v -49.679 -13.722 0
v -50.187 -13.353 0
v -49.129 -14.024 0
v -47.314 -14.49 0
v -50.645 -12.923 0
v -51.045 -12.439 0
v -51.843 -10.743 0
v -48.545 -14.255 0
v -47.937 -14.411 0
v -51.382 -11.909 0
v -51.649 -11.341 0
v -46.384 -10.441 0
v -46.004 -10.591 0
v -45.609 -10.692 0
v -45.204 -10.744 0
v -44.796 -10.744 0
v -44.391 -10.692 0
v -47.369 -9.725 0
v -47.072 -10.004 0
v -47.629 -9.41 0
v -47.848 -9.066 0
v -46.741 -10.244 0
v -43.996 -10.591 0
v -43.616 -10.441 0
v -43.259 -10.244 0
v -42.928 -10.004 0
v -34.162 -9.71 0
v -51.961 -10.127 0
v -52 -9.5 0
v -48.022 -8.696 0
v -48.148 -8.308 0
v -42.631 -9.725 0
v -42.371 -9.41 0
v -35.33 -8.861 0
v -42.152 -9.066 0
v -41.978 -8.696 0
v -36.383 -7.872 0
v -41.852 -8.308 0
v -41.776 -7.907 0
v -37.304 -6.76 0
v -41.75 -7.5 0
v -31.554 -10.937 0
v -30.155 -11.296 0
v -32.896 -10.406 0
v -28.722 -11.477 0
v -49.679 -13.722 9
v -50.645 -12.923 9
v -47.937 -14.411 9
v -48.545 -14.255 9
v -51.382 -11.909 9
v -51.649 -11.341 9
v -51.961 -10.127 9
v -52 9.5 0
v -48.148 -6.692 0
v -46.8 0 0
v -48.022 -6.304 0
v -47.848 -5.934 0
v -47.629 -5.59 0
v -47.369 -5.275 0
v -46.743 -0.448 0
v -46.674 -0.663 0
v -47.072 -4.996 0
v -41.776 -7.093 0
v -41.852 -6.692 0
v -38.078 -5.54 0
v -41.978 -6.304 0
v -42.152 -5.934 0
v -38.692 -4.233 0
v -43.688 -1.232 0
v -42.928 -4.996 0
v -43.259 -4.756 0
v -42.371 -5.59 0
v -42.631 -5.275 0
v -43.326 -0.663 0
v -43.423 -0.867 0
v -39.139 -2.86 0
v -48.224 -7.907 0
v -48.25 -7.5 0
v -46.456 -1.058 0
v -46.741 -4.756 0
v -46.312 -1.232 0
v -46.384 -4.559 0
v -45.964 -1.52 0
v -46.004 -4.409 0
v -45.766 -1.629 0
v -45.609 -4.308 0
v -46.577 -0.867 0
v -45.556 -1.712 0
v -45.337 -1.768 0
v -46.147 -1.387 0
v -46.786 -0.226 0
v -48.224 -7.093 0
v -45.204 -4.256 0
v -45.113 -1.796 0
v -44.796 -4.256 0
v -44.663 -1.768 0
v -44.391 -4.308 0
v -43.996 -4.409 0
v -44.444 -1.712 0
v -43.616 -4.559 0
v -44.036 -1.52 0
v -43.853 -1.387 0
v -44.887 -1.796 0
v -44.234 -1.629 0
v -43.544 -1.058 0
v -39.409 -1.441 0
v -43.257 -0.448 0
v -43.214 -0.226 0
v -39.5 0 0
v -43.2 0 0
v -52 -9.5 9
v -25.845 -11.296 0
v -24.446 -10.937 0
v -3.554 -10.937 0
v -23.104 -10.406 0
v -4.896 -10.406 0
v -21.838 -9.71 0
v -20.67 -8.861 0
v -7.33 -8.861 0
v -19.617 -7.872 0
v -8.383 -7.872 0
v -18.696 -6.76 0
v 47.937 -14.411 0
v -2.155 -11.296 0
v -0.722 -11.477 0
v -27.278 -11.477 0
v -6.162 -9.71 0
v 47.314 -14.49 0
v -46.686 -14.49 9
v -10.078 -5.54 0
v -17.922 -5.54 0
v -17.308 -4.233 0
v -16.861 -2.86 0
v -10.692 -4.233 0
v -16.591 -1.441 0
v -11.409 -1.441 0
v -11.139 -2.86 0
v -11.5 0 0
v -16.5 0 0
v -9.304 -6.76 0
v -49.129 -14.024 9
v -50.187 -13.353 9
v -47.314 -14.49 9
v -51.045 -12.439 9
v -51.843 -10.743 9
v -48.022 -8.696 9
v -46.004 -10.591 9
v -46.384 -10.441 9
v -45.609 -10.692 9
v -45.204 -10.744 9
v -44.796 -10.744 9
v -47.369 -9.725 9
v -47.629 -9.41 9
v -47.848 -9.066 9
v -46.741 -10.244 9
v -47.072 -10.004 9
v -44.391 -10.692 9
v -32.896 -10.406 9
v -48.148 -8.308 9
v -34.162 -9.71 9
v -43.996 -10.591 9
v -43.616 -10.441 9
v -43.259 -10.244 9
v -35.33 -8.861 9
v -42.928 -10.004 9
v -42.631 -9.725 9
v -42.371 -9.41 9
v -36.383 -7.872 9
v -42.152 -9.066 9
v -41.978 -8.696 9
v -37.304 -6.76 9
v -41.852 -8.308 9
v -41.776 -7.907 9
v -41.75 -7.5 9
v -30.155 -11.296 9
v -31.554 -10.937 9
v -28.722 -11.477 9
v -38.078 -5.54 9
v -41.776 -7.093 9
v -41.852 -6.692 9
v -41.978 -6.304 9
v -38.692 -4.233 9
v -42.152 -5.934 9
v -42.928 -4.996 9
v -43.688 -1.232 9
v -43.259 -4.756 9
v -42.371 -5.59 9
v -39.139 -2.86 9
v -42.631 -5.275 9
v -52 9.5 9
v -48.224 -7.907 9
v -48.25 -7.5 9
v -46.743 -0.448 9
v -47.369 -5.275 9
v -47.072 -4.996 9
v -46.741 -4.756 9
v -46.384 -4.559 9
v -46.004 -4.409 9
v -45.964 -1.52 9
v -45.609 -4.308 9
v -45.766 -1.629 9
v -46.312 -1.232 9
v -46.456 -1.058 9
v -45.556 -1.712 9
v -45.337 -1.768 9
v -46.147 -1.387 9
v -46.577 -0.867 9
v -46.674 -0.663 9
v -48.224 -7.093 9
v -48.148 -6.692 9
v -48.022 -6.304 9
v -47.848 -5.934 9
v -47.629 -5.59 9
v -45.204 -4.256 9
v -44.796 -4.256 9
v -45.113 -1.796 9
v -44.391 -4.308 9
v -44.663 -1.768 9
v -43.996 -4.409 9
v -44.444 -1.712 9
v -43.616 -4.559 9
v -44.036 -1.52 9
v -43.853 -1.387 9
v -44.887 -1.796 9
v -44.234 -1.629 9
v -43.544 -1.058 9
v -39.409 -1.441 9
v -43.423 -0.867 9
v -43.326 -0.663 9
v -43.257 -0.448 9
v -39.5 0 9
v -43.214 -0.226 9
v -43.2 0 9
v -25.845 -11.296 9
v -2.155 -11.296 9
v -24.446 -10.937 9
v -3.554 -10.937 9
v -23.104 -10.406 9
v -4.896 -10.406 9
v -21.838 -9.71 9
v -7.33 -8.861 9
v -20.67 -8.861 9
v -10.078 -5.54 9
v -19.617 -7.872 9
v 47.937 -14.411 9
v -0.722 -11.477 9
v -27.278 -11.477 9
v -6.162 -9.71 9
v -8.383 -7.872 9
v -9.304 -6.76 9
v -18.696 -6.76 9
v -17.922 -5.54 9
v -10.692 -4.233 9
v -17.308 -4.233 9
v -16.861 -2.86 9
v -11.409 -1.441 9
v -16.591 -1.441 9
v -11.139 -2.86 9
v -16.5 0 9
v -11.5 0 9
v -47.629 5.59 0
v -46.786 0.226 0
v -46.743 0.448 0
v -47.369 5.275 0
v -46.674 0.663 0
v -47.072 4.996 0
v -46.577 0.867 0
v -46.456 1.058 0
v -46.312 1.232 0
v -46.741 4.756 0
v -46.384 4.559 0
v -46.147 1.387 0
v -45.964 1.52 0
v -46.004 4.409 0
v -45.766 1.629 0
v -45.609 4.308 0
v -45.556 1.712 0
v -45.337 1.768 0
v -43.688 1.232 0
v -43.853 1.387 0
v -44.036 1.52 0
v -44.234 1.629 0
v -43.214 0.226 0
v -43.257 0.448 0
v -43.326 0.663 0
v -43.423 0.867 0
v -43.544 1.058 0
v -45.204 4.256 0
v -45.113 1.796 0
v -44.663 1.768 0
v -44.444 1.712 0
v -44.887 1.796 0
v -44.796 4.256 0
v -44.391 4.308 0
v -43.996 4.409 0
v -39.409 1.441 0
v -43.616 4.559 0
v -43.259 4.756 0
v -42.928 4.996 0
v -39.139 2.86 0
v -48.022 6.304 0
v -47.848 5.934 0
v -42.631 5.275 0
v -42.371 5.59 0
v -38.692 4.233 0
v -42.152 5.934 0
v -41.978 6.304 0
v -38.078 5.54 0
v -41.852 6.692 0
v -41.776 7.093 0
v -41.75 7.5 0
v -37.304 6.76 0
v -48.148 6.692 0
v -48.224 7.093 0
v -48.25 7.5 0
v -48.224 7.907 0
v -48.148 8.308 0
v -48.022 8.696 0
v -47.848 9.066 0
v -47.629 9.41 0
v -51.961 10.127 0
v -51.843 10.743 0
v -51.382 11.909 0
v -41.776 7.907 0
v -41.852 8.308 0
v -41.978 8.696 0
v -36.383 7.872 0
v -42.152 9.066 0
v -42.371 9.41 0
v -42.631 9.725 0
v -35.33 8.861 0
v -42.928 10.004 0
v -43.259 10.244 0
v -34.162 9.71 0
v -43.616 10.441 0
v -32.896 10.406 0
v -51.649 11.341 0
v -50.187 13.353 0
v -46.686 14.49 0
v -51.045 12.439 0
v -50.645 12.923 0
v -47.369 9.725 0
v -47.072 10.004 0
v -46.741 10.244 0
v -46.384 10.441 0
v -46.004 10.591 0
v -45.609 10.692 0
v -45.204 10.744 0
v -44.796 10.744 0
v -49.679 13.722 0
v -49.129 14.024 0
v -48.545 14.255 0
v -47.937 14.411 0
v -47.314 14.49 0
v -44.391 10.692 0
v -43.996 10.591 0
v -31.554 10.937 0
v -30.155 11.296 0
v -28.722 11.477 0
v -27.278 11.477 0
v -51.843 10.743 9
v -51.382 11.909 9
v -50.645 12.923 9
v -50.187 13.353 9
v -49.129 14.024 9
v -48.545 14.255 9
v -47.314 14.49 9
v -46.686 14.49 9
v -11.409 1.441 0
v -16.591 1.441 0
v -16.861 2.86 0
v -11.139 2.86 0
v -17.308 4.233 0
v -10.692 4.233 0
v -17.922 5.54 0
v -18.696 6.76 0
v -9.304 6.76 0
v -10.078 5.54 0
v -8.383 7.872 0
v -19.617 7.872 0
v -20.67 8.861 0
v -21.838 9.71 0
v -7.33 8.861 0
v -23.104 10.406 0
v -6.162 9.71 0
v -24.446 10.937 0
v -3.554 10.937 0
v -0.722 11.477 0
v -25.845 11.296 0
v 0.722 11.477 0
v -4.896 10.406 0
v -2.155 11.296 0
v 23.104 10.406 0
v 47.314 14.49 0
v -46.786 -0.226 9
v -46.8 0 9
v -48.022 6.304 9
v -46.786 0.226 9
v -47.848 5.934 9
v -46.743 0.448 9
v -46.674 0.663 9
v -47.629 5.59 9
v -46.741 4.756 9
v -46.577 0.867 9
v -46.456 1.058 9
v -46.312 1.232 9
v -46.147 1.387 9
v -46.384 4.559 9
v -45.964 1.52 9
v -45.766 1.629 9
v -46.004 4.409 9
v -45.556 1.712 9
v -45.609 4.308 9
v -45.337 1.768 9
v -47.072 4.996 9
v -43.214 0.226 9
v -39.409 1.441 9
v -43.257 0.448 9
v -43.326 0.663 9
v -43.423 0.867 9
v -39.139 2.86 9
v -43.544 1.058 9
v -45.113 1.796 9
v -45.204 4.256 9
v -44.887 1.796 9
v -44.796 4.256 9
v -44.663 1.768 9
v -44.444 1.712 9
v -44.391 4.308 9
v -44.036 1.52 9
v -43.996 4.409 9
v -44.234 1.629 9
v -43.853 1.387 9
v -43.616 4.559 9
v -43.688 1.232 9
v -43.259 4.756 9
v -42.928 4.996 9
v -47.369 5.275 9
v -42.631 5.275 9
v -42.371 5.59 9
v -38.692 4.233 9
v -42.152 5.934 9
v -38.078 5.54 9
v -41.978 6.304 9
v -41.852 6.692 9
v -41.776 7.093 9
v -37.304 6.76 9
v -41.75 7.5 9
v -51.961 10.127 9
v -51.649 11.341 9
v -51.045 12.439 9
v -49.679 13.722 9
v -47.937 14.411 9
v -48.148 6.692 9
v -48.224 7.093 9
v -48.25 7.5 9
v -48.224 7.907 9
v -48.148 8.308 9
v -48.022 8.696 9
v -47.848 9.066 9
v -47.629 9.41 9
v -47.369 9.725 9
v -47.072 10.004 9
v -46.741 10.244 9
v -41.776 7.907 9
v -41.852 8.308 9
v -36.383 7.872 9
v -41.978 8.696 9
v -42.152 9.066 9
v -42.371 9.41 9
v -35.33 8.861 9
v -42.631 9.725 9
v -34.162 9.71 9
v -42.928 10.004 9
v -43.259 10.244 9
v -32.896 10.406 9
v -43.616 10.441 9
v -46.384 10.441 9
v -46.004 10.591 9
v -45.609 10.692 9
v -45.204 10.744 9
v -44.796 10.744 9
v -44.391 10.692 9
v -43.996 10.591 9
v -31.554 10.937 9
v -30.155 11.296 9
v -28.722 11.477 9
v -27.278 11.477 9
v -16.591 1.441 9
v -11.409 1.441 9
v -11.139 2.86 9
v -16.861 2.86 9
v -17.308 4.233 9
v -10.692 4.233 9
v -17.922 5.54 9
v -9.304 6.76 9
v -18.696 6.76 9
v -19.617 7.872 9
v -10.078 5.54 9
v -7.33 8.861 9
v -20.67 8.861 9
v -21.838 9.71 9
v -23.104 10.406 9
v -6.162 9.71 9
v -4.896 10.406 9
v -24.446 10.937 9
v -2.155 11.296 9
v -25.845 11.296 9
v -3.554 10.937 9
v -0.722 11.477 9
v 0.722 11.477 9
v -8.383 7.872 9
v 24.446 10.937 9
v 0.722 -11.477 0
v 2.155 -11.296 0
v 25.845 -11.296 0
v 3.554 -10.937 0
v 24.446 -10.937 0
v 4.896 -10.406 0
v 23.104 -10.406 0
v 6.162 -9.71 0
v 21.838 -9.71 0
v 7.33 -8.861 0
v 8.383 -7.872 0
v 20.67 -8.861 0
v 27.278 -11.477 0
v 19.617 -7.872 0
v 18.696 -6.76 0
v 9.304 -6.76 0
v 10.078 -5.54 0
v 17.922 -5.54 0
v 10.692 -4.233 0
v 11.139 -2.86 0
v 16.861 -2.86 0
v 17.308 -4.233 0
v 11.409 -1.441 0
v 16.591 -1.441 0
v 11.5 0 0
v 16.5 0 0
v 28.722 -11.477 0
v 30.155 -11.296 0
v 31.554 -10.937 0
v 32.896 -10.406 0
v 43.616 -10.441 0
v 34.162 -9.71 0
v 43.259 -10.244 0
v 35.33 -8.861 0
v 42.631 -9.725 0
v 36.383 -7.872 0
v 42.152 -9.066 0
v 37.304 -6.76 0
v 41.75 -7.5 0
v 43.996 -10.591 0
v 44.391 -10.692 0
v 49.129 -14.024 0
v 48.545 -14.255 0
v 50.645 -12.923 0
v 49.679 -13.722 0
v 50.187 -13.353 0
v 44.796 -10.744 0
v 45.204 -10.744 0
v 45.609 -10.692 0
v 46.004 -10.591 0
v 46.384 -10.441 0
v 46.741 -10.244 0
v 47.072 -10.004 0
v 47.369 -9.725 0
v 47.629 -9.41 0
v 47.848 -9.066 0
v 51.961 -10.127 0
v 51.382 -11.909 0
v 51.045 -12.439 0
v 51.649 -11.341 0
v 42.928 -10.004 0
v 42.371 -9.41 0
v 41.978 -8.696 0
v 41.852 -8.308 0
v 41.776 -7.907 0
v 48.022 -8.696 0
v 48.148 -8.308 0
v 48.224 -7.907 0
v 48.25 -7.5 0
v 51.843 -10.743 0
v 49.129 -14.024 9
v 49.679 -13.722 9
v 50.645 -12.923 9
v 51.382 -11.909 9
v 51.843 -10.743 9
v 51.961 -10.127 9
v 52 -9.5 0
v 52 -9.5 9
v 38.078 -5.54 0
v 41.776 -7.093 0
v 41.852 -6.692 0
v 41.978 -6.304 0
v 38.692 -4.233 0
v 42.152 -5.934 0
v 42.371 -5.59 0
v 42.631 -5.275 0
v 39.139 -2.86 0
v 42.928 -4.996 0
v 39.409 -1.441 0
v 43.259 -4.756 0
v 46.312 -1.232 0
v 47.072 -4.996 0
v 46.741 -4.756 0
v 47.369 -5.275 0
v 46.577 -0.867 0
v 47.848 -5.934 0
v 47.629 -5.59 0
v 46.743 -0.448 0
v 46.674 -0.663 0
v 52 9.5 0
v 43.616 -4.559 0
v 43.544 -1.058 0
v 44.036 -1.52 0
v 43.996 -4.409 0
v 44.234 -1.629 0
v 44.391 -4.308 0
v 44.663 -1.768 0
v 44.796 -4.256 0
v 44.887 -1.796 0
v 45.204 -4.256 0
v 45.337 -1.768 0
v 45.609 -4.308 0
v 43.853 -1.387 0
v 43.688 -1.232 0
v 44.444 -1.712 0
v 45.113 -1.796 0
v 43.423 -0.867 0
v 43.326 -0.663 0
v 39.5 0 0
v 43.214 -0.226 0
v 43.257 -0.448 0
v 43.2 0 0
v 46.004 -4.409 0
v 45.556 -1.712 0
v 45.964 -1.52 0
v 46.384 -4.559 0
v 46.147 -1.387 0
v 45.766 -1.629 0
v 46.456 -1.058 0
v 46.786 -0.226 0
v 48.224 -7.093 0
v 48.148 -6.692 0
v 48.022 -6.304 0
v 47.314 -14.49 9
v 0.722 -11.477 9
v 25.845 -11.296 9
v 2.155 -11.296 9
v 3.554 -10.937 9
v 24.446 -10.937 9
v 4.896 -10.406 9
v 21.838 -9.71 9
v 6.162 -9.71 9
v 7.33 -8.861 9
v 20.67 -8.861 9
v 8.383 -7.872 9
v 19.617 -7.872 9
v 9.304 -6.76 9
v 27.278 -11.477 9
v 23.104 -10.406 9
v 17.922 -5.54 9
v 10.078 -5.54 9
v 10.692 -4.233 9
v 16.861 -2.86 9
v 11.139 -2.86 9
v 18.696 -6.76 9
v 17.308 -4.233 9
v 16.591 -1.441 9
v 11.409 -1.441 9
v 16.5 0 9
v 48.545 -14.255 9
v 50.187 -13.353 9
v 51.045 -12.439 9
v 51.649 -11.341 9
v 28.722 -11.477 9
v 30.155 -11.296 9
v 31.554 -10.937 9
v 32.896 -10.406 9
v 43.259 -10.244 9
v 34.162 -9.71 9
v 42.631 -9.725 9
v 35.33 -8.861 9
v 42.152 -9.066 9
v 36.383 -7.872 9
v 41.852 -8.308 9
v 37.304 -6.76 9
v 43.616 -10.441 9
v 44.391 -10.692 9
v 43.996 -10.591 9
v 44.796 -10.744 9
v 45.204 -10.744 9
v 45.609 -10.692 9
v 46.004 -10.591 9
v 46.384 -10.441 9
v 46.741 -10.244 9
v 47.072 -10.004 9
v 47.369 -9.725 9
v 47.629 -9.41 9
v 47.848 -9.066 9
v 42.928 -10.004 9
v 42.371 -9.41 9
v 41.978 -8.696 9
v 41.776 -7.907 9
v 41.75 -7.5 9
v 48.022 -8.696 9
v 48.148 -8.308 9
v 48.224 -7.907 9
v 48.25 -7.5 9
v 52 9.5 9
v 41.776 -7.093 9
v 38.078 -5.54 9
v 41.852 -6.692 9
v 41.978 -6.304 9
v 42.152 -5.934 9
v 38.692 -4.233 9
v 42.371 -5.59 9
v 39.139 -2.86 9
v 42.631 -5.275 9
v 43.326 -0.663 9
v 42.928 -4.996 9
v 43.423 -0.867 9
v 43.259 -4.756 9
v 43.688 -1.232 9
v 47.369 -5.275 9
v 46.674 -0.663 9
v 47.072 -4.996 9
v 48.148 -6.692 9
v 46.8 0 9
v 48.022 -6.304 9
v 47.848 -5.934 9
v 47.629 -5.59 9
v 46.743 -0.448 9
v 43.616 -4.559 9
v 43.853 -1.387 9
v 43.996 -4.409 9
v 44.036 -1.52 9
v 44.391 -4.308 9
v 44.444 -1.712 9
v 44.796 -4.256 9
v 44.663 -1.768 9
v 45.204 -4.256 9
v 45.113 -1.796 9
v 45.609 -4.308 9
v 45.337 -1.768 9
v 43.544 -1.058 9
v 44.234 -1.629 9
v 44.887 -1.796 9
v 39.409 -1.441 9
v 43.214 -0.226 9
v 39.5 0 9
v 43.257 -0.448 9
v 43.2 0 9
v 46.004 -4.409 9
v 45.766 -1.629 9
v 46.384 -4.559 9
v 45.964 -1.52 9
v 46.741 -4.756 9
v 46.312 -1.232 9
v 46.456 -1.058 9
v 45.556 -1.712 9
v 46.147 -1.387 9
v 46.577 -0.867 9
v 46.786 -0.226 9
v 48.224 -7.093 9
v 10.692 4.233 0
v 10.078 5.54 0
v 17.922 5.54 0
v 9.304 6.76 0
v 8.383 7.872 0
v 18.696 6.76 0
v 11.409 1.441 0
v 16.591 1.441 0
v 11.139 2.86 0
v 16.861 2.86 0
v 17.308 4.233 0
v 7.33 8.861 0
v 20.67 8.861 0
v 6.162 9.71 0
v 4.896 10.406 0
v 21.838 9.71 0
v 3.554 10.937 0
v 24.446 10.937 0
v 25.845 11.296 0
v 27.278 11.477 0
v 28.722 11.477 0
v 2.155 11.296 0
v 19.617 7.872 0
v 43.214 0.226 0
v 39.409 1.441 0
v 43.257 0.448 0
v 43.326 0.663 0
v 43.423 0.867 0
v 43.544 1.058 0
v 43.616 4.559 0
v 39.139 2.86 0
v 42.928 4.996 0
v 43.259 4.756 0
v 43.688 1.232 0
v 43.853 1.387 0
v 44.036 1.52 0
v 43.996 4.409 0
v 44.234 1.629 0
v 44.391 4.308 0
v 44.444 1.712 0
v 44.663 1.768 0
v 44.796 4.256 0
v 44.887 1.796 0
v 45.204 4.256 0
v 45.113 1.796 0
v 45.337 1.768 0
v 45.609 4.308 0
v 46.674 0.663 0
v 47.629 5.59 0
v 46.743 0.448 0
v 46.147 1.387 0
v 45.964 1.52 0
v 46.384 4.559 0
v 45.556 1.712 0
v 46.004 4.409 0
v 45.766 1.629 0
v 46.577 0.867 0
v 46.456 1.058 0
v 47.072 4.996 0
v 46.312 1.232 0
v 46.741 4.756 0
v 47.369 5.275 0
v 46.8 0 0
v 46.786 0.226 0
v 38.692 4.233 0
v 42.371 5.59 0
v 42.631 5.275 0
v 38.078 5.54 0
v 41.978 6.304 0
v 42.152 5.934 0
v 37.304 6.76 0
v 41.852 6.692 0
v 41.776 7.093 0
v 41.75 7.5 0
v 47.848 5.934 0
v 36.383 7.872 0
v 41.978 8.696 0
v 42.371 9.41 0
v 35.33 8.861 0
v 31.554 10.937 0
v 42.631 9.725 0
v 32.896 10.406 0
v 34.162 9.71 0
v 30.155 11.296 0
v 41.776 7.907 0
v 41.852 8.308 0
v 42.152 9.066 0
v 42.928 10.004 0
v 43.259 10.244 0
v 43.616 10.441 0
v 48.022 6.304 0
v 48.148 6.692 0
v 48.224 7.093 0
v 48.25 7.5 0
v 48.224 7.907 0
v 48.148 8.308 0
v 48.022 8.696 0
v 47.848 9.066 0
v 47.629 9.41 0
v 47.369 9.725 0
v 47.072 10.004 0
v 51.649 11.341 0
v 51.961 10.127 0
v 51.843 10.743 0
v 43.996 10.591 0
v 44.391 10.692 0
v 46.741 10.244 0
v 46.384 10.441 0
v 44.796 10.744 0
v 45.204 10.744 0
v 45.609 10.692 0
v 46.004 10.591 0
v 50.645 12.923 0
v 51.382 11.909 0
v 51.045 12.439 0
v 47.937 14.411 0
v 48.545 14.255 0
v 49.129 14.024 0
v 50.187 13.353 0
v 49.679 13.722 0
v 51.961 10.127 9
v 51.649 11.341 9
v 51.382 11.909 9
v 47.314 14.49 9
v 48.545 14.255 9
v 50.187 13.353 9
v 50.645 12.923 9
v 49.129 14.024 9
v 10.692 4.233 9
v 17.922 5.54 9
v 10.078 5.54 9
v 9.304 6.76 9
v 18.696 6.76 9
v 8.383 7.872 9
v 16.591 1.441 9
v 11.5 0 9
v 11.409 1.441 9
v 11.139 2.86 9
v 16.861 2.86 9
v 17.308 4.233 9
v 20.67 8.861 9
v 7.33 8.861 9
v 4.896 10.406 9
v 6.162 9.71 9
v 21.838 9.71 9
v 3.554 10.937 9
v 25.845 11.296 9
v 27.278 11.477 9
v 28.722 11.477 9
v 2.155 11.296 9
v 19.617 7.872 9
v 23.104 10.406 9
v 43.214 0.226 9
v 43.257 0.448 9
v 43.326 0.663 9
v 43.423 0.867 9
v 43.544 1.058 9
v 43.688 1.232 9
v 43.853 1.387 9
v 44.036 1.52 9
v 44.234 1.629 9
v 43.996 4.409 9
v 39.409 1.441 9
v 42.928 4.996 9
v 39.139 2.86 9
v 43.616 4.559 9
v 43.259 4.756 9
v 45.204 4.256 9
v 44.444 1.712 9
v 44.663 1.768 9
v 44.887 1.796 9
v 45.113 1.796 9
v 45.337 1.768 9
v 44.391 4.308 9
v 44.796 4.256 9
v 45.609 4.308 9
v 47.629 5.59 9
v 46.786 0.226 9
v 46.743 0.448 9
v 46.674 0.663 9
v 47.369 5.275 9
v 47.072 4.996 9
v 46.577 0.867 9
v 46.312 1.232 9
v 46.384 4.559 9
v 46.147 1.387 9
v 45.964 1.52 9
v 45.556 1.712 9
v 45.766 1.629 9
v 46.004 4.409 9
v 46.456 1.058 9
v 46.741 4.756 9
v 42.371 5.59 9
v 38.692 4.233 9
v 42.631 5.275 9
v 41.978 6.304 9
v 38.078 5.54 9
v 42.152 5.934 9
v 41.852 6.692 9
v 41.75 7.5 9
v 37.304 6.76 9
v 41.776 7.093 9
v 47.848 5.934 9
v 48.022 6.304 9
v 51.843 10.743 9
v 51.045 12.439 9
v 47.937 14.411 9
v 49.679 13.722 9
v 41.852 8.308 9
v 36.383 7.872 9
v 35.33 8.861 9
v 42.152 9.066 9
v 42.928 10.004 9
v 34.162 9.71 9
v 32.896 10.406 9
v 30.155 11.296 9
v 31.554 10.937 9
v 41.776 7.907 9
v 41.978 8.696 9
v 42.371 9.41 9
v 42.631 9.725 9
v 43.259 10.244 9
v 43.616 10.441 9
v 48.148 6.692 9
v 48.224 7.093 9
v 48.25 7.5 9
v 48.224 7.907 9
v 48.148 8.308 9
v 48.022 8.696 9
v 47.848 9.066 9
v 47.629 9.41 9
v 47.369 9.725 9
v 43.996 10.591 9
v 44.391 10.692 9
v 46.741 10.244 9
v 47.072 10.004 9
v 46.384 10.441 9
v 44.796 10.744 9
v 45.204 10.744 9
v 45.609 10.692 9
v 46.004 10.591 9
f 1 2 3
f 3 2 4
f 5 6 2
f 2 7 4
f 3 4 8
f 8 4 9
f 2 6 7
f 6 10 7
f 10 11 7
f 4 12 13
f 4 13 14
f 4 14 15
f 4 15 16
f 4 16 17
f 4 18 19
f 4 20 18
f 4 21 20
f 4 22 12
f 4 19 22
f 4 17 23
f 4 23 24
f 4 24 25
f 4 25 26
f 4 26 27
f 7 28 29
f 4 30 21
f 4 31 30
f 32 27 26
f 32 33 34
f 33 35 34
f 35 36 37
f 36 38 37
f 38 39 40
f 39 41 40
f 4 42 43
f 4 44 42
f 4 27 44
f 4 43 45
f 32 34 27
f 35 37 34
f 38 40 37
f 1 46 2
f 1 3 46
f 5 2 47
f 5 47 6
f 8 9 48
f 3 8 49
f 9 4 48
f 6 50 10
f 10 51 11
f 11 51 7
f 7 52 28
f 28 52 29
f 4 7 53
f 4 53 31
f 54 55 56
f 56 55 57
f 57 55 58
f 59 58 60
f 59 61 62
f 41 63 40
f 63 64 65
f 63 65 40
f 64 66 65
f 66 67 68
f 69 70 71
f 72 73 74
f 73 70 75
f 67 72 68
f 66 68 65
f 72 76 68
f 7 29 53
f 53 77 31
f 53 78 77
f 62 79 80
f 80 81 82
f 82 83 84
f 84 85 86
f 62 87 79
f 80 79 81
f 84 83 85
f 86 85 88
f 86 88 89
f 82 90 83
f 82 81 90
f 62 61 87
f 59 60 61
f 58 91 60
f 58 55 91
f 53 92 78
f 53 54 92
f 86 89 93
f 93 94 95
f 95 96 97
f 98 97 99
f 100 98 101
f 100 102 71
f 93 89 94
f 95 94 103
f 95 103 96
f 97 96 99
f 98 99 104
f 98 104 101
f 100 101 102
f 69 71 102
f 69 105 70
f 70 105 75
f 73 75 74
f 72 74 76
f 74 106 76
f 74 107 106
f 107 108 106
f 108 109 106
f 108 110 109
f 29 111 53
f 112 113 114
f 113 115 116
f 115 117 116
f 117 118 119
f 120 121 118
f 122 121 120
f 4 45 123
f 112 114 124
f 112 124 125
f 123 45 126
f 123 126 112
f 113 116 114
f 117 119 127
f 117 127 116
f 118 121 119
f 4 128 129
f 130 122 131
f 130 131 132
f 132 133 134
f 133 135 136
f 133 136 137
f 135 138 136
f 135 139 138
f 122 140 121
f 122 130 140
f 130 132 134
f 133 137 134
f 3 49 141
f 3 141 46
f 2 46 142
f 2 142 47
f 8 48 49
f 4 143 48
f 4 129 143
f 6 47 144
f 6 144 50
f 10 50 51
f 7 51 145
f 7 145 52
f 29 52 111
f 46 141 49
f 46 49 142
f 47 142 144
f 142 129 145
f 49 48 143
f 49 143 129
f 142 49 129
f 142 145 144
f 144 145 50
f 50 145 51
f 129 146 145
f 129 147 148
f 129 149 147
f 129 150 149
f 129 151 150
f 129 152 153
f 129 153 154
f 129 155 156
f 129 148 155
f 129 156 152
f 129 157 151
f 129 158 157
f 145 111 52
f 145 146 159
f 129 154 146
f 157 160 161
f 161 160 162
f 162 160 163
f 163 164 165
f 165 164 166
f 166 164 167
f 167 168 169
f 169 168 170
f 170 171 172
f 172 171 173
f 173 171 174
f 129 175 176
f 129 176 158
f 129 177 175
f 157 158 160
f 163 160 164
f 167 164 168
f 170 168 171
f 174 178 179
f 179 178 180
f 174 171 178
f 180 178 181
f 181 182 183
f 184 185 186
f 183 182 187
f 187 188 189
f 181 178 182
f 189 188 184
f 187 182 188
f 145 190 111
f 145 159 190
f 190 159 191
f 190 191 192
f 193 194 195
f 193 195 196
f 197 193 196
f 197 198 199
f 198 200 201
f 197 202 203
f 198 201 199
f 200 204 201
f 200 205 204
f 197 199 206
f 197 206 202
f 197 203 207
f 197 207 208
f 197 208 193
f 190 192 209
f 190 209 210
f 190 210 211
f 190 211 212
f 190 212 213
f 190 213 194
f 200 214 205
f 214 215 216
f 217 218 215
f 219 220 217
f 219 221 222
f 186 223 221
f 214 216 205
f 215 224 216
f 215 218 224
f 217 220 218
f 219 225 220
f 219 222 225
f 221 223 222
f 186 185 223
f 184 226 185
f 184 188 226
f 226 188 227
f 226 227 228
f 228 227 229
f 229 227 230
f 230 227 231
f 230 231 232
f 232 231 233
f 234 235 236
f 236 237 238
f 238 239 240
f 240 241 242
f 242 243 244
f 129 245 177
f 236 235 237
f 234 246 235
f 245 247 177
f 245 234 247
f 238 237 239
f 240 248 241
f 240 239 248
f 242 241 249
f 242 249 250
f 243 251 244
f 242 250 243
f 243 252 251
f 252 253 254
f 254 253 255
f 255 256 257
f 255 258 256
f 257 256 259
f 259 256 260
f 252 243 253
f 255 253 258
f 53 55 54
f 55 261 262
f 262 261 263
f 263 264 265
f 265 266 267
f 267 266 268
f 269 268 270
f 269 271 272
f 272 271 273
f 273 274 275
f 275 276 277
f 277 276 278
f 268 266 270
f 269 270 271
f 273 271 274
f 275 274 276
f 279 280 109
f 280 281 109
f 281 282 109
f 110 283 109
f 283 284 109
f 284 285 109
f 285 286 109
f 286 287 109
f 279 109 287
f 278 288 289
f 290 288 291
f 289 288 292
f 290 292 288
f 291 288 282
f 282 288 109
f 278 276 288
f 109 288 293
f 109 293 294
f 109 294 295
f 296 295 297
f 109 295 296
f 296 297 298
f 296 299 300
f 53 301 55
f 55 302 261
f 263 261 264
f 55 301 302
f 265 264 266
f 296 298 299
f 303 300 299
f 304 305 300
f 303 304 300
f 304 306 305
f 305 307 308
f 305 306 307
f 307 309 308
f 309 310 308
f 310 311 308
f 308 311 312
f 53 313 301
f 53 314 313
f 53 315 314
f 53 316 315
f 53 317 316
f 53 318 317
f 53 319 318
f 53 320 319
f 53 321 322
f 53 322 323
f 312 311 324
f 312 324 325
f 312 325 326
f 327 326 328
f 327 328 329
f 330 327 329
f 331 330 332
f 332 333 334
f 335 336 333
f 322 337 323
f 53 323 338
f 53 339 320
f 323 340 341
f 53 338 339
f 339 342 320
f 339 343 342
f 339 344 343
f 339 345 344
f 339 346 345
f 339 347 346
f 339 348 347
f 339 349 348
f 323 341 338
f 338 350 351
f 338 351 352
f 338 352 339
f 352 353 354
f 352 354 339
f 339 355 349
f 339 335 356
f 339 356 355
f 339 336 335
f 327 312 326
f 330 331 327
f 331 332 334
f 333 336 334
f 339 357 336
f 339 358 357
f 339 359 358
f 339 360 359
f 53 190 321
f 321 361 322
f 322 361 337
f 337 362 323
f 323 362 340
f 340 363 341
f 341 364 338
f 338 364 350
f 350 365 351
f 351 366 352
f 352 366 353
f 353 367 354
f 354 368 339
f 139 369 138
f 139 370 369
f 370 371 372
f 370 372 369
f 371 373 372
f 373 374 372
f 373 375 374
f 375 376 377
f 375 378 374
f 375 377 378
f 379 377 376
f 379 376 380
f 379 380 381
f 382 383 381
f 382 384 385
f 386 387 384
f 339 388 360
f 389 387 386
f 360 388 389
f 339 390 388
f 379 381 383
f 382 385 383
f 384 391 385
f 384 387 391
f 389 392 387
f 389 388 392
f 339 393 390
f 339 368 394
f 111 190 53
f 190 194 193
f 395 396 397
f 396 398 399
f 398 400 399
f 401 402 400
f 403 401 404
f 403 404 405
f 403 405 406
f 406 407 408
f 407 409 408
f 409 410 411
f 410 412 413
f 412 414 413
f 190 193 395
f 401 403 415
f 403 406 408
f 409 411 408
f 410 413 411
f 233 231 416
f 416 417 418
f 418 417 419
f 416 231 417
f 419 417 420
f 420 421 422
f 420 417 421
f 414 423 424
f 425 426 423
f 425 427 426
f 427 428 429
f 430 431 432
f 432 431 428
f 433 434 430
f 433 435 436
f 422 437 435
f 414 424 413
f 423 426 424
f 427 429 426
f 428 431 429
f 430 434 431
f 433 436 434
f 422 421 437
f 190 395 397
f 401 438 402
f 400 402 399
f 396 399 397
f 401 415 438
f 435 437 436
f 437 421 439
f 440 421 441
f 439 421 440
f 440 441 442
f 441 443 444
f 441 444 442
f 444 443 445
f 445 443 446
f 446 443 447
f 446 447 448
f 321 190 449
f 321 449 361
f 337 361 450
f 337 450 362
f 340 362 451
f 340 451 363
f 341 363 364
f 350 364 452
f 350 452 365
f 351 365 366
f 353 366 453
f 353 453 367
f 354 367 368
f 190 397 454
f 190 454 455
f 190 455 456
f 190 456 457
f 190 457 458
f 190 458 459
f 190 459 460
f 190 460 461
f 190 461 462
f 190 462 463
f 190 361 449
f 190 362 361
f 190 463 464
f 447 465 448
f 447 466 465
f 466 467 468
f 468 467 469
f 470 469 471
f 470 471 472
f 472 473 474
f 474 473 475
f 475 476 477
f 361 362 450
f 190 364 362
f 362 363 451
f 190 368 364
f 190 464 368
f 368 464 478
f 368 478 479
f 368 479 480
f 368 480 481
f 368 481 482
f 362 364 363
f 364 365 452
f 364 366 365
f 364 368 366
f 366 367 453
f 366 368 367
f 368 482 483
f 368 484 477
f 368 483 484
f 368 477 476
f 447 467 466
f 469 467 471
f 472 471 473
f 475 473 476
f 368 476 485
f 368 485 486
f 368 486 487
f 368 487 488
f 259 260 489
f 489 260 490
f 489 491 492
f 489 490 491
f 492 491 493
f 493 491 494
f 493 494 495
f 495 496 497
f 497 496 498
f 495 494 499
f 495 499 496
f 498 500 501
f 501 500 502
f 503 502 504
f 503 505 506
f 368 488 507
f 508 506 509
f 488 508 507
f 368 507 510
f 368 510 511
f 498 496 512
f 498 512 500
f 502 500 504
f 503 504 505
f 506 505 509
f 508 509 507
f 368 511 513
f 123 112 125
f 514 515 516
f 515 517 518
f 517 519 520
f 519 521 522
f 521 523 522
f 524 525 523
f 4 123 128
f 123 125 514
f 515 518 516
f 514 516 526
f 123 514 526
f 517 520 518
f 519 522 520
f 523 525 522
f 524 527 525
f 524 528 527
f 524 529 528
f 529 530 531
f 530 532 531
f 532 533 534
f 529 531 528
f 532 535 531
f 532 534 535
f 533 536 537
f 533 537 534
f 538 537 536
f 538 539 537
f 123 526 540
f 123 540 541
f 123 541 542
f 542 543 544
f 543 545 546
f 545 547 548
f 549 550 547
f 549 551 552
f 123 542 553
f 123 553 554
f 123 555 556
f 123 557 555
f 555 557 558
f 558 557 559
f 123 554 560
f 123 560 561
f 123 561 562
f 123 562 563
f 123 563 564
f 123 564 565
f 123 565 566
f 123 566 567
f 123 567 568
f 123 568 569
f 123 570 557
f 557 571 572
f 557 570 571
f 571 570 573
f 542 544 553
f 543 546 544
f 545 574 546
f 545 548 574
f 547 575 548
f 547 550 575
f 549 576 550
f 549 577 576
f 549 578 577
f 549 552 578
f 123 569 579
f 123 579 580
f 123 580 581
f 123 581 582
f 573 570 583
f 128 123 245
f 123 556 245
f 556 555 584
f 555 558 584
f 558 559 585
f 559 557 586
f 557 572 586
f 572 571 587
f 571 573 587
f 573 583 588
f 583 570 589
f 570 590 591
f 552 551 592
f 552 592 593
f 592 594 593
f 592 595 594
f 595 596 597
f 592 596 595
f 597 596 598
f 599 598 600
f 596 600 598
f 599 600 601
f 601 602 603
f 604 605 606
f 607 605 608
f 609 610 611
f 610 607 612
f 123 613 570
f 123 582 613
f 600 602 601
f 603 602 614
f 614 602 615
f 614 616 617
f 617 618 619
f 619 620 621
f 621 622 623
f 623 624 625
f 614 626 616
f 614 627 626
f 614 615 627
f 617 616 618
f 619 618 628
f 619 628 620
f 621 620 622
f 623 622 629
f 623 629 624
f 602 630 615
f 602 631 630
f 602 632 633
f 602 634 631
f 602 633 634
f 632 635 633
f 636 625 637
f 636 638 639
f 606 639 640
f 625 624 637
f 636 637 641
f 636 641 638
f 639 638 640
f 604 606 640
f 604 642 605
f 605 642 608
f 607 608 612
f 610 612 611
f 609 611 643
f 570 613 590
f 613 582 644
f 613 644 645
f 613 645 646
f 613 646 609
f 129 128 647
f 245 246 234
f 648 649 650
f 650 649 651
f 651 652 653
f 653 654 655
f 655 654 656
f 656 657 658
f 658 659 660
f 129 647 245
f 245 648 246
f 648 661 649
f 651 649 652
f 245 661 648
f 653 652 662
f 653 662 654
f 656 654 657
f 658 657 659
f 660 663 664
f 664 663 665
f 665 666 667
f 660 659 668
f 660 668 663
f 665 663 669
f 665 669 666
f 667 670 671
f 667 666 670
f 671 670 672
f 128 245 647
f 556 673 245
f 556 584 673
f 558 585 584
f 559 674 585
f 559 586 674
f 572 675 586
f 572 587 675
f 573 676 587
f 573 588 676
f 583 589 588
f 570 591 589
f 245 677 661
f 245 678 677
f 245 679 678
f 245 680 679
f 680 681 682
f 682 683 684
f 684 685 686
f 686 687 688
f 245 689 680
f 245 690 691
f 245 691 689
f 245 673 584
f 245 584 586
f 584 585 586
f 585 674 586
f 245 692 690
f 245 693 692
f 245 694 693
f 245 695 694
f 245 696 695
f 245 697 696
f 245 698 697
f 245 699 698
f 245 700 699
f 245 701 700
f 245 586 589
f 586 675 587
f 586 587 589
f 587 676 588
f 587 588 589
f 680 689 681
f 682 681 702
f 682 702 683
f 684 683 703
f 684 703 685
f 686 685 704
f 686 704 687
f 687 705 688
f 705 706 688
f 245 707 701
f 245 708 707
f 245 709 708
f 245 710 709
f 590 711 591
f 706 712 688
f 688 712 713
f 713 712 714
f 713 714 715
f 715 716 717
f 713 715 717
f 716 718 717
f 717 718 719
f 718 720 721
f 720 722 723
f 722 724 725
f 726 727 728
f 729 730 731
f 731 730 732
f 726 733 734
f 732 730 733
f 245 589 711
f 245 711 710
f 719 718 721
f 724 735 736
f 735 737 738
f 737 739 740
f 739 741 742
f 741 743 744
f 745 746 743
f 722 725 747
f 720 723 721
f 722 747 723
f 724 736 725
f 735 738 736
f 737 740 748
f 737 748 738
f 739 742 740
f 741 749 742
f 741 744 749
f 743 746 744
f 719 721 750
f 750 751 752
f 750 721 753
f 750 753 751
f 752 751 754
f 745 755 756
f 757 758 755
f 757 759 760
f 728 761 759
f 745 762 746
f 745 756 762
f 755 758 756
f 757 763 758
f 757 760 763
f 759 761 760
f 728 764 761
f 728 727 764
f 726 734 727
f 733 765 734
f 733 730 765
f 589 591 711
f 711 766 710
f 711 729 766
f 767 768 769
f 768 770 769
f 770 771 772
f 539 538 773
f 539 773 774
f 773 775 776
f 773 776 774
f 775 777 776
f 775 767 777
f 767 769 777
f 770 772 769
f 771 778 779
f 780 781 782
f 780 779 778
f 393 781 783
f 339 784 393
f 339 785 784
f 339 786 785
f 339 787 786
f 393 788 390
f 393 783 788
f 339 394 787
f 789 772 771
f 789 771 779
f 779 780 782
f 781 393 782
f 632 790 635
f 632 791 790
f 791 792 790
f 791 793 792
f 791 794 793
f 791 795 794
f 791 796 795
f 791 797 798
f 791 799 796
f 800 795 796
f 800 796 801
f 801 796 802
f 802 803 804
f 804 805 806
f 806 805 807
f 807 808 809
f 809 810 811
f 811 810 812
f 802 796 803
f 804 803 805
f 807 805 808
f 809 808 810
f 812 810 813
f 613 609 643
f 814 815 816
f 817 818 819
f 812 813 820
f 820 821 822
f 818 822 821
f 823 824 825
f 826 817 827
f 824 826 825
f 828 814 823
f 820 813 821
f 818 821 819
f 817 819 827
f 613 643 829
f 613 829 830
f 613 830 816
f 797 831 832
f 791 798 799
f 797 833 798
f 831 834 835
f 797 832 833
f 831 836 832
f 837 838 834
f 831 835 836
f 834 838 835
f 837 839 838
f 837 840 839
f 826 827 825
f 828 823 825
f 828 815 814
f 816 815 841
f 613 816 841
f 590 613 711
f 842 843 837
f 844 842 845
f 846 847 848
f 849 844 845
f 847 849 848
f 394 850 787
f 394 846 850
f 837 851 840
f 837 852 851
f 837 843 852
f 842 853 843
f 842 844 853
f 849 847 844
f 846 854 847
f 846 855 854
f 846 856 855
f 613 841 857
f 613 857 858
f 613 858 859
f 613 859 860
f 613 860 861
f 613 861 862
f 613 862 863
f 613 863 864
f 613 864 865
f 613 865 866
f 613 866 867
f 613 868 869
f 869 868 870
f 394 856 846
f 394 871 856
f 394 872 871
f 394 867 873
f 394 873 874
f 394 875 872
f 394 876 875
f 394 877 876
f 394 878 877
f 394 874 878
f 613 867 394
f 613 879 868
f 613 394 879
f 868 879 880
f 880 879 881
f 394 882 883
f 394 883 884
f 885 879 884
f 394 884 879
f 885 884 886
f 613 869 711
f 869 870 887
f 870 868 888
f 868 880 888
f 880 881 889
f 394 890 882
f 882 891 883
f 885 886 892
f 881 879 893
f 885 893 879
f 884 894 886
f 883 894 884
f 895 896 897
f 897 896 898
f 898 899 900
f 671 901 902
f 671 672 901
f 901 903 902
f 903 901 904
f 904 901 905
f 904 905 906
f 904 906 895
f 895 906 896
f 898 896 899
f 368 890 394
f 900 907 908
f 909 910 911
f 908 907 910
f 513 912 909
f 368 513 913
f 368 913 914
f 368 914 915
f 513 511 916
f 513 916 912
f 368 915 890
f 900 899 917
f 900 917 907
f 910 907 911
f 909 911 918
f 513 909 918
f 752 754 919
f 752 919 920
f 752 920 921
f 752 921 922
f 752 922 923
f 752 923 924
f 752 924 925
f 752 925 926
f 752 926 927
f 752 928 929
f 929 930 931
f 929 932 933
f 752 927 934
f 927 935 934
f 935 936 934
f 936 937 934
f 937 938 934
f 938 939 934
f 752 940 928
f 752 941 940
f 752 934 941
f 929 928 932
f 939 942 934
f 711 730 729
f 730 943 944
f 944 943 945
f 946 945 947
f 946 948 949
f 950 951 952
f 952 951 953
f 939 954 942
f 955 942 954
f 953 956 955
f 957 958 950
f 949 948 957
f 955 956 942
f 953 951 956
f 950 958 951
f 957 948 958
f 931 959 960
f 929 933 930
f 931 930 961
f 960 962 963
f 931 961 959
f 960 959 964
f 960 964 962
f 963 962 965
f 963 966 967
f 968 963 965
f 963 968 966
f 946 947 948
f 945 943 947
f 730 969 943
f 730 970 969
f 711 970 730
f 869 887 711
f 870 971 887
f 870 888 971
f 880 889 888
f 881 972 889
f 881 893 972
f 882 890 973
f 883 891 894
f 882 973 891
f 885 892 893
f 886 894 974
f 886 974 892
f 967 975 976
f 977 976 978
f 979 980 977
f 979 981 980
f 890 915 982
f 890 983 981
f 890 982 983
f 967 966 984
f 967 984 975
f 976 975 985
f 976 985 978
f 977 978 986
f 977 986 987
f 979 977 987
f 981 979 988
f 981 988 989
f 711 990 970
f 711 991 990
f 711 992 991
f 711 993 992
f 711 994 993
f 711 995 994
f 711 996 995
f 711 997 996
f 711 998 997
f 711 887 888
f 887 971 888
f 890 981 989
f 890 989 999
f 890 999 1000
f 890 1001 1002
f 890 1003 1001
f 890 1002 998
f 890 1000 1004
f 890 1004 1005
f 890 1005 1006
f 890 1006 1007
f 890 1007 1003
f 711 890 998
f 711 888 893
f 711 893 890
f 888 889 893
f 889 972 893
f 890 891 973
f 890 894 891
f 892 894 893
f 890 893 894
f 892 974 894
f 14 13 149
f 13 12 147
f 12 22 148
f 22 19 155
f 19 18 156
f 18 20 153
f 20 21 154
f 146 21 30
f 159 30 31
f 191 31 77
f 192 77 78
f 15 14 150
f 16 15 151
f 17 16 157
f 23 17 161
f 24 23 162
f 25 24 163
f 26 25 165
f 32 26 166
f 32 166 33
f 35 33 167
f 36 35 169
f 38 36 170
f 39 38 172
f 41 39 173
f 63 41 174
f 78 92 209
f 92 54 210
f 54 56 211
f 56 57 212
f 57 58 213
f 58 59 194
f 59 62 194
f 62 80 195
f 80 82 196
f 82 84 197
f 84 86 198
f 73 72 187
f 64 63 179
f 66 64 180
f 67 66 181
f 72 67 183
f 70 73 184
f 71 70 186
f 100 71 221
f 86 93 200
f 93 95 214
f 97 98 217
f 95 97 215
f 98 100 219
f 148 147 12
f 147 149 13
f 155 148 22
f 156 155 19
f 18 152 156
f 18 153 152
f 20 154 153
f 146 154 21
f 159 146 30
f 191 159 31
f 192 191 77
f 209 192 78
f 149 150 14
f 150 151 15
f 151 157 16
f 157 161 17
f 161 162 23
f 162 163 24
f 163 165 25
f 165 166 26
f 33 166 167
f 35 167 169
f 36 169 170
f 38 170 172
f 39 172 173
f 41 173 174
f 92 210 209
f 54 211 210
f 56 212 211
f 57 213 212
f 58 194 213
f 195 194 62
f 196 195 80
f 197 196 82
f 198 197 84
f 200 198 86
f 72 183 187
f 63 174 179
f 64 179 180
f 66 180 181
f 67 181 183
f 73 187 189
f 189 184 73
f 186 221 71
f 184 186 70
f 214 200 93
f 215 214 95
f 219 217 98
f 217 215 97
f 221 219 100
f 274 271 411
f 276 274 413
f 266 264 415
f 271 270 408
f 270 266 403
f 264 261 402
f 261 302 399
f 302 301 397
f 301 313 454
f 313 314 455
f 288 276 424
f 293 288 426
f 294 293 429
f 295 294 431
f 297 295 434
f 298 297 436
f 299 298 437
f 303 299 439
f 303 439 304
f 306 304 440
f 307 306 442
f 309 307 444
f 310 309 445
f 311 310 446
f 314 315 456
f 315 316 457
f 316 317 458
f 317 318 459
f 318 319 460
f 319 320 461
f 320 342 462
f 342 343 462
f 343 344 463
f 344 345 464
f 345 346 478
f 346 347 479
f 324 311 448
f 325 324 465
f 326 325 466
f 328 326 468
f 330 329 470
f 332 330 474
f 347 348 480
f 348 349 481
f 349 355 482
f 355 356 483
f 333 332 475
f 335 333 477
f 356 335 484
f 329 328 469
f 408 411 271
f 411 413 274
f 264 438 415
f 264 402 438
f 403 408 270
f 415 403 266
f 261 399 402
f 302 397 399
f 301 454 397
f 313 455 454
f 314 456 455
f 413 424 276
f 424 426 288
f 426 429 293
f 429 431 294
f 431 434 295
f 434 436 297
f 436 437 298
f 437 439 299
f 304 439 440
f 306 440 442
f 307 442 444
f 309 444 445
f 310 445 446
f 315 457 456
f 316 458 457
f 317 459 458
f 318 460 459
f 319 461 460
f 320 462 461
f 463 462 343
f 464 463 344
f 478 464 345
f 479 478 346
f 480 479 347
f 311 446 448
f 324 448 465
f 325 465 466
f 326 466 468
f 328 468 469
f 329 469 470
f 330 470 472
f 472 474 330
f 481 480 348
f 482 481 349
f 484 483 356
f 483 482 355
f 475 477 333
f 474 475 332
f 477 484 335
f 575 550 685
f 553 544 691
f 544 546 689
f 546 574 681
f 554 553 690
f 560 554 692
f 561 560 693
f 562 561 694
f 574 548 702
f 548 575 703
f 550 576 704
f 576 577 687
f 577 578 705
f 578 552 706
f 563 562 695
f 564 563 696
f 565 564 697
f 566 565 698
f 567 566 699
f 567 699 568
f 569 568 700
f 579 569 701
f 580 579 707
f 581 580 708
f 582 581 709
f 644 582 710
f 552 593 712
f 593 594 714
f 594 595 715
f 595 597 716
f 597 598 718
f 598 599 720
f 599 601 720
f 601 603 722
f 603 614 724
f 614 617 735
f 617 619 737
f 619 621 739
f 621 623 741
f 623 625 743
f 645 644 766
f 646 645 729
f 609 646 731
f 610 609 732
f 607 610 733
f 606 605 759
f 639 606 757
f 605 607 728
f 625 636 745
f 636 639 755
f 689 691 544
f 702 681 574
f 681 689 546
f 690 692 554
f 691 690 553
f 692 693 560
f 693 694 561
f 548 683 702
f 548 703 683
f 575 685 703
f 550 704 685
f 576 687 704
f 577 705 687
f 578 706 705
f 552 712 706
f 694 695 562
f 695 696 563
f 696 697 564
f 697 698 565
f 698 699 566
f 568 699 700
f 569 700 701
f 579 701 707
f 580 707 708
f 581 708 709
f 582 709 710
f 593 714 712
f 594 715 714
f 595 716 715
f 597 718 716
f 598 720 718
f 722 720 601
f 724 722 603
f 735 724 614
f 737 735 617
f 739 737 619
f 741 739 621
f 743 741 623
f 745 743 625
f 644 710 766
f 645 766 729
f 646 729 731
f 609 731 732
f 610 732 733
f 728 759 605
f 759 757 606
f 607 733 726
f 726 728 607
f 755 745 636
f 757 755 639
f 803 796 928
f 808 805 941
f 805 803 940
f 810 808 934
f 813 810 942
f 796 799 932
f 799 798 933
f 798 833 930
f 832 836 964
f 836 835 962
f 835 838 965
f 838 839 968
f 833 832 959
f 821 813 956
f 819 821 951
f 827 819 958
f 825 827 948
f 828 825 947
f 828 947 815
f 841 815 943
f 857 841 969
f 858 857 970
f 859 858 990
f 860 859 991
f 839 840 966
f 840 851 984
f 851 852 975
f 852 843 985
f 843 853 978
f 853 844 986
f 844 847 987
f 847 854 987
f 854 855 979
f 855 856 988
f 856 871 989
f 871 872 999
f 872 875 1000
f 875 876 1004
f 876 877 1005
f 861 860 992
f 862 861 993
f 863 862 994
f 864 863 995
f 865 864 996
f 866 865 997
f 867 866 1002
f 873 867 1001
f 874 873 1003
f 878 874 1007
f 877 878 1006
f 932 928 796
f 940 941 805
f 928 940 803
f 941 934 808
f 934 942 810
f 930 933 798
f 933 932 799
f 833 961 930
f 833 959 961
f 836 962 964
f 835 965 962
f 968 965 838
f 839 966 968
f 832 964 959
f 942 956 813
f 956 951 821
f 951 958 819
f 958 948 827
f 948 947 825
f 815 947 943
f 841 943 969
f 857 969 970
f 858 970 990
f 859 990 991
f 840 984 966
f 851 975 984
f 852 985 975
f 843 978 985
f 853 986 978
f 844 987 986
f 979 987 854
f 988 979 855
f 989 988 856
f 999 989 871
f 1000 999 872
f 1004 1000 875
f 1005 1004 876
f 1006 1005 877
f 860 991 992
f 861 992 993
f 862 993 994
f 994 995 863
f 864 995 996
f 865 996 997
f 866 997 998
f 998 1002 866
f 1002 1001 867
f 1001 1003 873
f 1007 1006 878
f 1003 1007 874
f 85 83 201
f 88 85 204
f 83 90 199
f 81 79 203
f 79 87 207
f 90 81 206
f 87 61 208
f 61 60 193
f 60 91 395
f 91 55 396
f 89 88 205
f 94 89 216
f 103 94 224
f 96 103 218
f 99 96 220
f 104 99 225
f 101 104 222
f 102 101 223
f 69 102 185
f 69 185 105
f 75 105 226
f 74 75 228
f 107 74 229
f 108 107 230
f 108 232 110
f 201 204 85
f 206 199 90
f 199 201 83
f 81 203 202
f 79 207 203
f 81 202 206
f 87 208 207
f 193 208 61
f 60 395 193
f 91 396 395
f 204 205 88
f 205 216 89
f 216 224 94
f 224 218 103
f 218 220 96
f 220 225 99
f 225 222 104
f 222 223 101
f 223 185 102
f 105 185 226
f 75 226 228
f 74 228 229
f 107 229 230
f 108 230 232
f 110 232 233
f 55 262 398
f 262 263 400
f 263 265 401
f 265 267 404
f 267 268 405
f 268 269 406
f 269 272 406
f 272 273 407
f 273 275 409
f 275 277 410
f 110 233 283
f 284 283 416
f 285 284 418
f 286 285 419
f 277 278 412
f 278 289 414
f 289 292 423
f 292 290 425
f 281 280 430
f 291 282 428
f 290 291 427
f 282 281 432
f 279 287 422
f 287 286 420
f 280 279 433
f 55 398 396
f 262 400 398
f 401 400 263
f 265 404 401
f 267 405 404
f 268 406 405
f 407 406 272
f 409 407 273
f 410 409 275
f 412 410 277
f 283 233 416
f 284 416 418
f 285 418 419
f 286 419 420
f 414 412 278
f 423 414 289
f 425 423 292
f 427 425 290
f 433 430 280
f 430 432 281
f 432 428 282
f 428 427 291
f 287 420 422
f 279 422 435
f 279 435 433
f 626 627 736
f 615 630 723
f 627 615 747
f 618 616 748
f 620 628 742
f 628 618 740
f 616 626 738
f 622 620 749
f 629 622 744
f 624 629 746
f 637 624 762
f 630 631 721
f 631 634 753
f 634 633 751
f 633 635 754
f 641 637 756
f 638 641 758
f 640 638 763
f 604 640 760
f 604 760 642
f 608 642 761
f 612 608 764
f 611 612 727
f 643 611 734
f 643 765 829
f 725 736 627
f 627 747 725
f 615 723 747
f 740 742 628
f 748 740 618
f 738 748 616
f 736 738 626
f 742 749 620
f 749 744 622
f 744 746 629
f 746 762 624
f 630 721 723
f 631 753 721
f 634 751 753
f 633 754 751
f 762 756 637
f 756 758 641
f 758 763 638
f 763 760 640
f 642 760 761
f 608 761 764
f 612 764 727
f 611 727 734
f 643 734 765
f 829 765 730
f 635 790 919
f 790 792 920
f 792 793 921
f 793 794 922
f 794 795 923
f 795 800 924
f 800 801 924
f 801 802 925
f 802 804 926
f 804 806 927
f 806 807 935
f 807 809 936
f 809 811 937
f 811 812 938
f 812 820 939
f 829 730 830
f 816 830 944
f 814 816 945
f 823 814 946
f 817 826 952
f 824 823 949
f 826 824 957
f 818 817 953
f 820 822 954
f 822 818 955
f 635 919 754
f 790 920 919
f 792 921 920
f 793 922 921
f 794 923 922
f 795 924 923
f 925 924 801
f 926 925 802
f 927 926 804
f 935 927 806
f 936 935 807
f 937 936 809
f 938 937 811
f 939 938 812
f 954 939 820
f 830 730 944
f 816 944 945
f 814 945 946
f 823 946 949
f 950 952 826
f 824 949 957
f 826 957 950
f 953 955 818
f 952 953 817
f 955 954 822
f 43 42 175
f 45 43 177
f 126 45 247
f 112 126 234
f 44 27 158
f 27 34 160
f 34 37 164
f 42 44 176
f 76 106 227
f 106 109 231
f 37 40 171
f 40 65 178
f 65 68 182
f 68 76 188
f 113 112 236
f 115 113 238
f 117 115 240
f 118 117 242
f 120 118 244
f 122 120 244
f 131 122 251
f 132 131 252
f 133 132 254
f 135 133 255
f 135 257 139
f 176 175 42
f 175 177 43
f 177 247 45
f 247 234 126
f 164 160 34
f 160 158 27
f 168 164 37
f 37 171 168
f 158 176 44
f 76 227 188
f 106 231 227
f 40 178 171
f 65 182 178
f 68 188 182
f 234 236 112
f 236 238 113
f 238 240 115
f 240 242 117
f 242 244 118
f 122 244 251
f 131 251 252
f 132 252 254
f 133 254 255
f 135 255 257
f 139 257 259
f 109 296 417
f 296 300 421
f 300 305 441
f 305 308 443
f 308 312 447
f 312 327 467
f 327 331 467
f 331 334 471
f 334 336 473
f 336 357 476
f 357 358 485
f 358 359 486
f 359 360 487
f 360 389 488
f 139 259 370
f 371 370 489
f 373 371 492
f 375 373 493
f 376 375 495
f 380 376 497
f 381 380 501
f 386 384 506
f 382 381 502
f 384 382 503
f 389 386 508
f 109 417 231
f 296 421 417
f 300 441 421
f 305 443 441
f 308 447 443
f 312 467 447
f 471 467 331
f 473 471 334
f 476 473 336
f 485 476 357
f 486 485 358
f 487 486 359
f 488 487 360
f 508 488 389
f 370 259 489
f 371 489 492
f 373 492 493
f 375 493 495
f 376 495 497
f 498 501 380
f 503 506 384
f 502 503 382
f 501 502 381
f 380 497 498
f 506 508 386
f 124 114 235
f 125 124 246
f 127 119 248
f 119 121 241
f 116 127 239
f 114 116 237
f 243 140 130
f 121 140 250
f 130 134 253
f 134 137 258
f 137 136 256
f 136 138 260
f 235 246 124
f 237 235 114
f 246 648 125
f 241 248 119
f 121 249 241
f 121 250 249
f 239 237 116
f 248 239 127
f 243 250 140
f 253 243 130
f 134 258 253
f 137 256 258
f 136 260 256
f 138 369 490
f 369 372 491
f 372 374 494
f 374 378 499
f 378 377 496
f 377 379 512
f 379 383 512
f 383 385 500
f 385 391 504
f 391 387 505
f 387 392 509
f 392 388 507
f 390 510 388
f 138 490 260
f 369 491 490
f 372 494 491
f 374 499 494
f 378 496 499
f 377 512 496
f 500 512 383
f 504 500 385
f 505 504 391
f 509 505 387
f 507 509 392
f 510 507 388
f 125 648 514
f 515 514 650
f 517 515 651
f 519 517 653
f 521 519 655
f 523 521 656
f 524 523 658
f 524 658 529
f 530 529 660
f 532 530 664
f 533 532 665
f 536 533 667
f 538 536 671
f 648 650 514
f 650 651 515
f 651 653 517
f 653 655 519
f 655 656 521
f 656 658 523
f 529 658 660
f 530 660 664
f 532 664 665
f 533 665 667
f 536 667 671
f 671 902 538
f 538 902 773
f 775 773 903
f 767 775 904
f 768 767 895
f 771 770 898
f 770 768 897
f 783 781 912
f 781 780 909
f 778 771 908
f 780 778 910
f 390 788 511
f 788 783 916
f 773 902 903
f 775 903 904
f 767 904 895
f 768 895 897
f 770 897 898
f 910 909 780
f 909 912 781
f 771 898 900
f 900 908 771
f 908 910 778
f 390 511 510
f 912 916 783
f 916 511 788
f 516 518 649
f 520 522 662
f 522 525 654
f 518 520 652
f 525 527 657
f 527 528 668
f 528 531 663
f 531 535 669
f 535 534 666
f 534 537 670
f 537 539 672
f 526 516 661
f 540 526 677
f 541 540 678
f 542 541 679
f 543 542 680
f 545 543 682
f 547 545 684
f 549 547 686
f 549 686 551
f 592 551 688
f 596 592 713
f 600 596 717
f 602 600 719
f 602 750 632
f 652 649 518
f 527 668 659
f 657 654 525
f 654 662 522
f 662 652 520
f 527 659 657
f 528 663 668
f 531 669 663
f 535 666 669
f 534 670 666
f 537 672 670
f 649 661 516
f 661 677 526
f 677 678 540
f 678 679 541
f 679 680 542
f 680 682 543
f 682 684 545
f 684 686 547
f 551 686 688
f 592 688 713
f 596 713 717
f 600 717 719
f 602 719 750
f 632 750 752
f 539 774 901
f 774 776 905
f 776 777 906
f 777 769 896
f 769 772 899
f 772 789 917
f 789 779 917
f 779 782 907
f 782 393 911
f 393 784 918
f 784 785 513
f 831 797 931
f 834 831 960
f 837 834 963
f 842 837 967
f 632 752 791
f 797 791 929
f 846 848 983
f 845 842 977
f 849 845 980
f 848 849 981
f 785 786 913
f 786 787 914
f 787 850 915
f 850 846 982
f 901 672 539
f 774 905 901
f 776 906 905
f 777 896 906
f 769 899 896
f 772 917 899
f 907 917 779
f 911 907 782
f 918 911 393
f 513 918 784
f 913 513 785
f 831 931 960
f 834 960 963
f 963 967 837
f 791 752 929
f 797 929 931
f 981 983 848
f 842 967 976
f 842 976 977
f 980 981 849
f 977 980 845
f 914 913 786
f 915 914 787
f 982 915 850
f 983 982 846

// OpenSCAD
$fn = 50;

difference() {
	union() {
		hull() {
			translate(v = [-47.0, 9.5, 0]) {
				cylinder(h = 9, r = 5);
			}
			translate(v = [47.0, 9.5, 0]) {
				cylinder(h = 9, r = 5);
			}
			translate(v = [-47.0, -9.5, 0]) {
				cylinder(h = 9, r = 5);
			}
			translate(v = [47.0, -9.5, 0]) {
				cylinder(h = 9, r = 5);
			}
		}
	}
	union() {
		translate(v = [-45.0, -7.5, 0]) {
			cylinder(h = 9, r = 3.25);
		}
		translate(v = [-45.0, 7.5, 0]) {
			cylinder(h = 9, r = 3.25);
		}
		translate(v = [45.0, -7.5, 0]) {
			cylinder(h = 9, r = 3.25);
		}
		translate(v = [45.0, 7.5, 0]) {
			cylinder(h = 9, r = 3.25);
		}
		translate(v = [-45.0, 0.0, 0]) {
			cylinder(h = 9, r = 1.8);
		}
		translate(v = [45.0, 0.0, 0]) {
			cylinder(h = 9, r = 1.8);
		}
		translate(v = [-28.0, 0, 0.0]) {
			cylinder(h = 9, r = 11.5);
		}
		cylinder(h = 9, r = 11.5);
		translate(v = [28.0, 0, 0.0]) {
			cylinder(h = 9, r = 11.5);
		}
	}
}
